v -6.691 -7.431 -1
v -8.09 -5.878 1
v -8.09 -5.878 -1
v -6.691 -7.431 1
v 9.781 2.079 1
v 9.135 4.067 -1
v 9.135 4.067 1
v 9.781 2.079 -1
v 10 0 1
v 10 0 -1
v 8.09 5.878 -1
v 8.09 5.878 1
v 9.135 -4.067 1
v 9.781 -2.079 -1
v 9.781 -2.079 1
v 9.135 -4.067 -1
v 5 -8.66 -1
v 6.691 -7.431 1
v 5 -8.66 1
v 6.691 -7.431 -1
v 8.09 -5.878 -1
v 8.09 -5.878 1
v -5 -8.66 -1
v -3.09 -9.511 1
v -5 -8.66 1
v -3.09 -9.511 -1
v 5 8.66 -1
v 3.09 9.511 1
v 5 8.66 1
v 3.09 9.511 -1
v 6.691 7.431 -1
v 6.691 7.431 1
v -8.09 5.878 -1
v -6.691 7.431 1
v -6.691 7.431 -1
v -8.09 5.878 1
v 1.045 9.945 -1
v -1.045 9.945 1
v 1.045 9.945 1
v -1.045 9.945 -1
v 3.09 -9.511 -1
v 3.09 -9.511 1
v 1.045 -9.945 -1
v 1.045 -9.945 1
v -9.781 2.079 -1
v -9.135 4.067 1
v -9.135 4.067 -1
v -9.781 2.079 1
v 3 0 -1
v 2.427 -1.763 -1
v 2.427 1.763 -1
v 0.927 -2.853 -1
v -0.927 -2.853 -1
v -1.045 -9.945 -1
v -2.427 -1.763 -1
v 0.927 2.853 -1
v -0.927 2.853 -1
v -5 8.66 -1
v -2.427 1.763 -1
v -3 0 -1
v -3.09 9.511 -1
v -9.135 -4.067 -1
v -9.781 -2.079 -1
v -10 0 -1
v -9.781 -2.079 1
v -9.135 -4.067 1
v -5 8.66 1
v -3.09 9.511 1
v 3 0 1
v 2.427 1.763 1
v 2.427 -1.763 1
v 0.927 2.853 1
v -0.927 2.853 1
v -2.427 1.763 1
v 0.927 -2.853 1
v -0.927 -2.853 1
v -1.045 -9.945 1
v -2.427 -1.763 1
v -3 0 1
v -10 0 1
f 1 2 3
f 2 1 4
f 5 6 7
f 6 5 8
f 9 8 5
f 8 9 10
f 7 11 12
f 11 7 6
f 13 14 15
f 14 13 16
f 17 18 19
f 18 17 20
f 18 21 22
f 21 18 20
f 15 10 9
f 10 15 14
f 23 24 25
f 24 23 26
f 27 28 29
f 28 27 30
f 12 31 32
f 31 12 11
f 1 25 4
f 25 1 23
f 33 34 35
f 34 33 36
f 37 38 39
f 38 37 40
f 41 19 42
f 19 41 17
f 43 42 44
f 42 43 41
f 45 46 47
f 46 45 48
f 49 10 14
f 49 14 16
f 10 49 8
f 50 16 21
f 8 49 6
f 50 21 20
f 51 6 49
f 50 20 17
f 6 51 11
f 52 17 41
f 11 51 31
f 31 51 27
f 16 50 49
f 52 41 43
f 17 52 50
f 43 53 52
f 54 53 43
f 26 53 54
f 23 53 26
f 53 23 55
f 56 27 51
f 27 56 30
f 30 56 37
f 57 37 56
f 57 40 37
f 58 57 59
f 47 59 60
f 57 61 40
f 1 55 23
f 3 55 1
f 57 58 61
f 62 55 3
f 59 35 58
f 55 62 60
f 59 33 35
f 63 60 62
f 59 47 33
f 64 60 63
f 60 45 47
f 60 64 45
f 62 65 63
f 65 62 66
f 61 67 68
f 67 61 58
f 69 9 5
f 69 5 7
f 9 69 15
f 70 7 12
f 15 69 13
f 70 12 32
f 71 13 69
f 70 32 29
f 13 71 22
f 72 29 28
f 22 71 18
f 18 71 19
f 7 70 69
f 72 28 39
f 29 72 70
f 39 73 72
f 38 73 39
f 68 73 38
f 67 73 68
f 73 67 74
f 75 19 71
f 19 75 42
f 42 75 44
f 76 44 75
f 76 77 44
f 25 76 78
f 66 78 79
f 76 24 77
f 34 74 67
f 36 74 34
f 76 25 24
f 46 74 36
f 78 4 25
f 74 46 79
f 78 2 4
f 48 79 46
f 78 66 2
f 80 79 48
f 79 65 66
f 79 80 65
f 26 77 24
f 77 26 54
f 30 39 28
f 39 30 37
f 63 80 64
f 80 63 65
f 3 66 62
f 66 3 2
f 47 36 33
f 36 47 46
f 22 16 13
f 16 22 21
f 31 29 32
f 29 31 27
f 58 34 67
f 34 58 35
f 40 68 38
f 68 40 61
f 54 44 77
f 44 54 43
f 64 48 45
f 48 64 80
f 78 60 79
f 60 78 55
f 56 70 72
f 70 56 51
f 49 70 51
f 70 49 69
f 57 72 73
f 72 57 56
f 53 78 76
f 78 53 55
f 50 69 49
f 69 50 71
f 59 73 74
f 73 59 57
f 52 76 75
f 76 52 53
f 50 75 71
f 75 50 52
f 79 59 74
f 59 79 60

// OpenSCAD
// Spacer Ring Component
// Description: A flat, circular ring with a smooth surface and a central hole.

module spacer_ring() {
    difference() {
        // Outer cylinder (ring body)
        cylinder(h=2, r=10, center=true);
        // Inner cylinder (hole)
        translate([0, 0, -1]) cylinder(h=4, r=3, center=true);
    }
}

// Render the spacer ring
spacer_ring();
